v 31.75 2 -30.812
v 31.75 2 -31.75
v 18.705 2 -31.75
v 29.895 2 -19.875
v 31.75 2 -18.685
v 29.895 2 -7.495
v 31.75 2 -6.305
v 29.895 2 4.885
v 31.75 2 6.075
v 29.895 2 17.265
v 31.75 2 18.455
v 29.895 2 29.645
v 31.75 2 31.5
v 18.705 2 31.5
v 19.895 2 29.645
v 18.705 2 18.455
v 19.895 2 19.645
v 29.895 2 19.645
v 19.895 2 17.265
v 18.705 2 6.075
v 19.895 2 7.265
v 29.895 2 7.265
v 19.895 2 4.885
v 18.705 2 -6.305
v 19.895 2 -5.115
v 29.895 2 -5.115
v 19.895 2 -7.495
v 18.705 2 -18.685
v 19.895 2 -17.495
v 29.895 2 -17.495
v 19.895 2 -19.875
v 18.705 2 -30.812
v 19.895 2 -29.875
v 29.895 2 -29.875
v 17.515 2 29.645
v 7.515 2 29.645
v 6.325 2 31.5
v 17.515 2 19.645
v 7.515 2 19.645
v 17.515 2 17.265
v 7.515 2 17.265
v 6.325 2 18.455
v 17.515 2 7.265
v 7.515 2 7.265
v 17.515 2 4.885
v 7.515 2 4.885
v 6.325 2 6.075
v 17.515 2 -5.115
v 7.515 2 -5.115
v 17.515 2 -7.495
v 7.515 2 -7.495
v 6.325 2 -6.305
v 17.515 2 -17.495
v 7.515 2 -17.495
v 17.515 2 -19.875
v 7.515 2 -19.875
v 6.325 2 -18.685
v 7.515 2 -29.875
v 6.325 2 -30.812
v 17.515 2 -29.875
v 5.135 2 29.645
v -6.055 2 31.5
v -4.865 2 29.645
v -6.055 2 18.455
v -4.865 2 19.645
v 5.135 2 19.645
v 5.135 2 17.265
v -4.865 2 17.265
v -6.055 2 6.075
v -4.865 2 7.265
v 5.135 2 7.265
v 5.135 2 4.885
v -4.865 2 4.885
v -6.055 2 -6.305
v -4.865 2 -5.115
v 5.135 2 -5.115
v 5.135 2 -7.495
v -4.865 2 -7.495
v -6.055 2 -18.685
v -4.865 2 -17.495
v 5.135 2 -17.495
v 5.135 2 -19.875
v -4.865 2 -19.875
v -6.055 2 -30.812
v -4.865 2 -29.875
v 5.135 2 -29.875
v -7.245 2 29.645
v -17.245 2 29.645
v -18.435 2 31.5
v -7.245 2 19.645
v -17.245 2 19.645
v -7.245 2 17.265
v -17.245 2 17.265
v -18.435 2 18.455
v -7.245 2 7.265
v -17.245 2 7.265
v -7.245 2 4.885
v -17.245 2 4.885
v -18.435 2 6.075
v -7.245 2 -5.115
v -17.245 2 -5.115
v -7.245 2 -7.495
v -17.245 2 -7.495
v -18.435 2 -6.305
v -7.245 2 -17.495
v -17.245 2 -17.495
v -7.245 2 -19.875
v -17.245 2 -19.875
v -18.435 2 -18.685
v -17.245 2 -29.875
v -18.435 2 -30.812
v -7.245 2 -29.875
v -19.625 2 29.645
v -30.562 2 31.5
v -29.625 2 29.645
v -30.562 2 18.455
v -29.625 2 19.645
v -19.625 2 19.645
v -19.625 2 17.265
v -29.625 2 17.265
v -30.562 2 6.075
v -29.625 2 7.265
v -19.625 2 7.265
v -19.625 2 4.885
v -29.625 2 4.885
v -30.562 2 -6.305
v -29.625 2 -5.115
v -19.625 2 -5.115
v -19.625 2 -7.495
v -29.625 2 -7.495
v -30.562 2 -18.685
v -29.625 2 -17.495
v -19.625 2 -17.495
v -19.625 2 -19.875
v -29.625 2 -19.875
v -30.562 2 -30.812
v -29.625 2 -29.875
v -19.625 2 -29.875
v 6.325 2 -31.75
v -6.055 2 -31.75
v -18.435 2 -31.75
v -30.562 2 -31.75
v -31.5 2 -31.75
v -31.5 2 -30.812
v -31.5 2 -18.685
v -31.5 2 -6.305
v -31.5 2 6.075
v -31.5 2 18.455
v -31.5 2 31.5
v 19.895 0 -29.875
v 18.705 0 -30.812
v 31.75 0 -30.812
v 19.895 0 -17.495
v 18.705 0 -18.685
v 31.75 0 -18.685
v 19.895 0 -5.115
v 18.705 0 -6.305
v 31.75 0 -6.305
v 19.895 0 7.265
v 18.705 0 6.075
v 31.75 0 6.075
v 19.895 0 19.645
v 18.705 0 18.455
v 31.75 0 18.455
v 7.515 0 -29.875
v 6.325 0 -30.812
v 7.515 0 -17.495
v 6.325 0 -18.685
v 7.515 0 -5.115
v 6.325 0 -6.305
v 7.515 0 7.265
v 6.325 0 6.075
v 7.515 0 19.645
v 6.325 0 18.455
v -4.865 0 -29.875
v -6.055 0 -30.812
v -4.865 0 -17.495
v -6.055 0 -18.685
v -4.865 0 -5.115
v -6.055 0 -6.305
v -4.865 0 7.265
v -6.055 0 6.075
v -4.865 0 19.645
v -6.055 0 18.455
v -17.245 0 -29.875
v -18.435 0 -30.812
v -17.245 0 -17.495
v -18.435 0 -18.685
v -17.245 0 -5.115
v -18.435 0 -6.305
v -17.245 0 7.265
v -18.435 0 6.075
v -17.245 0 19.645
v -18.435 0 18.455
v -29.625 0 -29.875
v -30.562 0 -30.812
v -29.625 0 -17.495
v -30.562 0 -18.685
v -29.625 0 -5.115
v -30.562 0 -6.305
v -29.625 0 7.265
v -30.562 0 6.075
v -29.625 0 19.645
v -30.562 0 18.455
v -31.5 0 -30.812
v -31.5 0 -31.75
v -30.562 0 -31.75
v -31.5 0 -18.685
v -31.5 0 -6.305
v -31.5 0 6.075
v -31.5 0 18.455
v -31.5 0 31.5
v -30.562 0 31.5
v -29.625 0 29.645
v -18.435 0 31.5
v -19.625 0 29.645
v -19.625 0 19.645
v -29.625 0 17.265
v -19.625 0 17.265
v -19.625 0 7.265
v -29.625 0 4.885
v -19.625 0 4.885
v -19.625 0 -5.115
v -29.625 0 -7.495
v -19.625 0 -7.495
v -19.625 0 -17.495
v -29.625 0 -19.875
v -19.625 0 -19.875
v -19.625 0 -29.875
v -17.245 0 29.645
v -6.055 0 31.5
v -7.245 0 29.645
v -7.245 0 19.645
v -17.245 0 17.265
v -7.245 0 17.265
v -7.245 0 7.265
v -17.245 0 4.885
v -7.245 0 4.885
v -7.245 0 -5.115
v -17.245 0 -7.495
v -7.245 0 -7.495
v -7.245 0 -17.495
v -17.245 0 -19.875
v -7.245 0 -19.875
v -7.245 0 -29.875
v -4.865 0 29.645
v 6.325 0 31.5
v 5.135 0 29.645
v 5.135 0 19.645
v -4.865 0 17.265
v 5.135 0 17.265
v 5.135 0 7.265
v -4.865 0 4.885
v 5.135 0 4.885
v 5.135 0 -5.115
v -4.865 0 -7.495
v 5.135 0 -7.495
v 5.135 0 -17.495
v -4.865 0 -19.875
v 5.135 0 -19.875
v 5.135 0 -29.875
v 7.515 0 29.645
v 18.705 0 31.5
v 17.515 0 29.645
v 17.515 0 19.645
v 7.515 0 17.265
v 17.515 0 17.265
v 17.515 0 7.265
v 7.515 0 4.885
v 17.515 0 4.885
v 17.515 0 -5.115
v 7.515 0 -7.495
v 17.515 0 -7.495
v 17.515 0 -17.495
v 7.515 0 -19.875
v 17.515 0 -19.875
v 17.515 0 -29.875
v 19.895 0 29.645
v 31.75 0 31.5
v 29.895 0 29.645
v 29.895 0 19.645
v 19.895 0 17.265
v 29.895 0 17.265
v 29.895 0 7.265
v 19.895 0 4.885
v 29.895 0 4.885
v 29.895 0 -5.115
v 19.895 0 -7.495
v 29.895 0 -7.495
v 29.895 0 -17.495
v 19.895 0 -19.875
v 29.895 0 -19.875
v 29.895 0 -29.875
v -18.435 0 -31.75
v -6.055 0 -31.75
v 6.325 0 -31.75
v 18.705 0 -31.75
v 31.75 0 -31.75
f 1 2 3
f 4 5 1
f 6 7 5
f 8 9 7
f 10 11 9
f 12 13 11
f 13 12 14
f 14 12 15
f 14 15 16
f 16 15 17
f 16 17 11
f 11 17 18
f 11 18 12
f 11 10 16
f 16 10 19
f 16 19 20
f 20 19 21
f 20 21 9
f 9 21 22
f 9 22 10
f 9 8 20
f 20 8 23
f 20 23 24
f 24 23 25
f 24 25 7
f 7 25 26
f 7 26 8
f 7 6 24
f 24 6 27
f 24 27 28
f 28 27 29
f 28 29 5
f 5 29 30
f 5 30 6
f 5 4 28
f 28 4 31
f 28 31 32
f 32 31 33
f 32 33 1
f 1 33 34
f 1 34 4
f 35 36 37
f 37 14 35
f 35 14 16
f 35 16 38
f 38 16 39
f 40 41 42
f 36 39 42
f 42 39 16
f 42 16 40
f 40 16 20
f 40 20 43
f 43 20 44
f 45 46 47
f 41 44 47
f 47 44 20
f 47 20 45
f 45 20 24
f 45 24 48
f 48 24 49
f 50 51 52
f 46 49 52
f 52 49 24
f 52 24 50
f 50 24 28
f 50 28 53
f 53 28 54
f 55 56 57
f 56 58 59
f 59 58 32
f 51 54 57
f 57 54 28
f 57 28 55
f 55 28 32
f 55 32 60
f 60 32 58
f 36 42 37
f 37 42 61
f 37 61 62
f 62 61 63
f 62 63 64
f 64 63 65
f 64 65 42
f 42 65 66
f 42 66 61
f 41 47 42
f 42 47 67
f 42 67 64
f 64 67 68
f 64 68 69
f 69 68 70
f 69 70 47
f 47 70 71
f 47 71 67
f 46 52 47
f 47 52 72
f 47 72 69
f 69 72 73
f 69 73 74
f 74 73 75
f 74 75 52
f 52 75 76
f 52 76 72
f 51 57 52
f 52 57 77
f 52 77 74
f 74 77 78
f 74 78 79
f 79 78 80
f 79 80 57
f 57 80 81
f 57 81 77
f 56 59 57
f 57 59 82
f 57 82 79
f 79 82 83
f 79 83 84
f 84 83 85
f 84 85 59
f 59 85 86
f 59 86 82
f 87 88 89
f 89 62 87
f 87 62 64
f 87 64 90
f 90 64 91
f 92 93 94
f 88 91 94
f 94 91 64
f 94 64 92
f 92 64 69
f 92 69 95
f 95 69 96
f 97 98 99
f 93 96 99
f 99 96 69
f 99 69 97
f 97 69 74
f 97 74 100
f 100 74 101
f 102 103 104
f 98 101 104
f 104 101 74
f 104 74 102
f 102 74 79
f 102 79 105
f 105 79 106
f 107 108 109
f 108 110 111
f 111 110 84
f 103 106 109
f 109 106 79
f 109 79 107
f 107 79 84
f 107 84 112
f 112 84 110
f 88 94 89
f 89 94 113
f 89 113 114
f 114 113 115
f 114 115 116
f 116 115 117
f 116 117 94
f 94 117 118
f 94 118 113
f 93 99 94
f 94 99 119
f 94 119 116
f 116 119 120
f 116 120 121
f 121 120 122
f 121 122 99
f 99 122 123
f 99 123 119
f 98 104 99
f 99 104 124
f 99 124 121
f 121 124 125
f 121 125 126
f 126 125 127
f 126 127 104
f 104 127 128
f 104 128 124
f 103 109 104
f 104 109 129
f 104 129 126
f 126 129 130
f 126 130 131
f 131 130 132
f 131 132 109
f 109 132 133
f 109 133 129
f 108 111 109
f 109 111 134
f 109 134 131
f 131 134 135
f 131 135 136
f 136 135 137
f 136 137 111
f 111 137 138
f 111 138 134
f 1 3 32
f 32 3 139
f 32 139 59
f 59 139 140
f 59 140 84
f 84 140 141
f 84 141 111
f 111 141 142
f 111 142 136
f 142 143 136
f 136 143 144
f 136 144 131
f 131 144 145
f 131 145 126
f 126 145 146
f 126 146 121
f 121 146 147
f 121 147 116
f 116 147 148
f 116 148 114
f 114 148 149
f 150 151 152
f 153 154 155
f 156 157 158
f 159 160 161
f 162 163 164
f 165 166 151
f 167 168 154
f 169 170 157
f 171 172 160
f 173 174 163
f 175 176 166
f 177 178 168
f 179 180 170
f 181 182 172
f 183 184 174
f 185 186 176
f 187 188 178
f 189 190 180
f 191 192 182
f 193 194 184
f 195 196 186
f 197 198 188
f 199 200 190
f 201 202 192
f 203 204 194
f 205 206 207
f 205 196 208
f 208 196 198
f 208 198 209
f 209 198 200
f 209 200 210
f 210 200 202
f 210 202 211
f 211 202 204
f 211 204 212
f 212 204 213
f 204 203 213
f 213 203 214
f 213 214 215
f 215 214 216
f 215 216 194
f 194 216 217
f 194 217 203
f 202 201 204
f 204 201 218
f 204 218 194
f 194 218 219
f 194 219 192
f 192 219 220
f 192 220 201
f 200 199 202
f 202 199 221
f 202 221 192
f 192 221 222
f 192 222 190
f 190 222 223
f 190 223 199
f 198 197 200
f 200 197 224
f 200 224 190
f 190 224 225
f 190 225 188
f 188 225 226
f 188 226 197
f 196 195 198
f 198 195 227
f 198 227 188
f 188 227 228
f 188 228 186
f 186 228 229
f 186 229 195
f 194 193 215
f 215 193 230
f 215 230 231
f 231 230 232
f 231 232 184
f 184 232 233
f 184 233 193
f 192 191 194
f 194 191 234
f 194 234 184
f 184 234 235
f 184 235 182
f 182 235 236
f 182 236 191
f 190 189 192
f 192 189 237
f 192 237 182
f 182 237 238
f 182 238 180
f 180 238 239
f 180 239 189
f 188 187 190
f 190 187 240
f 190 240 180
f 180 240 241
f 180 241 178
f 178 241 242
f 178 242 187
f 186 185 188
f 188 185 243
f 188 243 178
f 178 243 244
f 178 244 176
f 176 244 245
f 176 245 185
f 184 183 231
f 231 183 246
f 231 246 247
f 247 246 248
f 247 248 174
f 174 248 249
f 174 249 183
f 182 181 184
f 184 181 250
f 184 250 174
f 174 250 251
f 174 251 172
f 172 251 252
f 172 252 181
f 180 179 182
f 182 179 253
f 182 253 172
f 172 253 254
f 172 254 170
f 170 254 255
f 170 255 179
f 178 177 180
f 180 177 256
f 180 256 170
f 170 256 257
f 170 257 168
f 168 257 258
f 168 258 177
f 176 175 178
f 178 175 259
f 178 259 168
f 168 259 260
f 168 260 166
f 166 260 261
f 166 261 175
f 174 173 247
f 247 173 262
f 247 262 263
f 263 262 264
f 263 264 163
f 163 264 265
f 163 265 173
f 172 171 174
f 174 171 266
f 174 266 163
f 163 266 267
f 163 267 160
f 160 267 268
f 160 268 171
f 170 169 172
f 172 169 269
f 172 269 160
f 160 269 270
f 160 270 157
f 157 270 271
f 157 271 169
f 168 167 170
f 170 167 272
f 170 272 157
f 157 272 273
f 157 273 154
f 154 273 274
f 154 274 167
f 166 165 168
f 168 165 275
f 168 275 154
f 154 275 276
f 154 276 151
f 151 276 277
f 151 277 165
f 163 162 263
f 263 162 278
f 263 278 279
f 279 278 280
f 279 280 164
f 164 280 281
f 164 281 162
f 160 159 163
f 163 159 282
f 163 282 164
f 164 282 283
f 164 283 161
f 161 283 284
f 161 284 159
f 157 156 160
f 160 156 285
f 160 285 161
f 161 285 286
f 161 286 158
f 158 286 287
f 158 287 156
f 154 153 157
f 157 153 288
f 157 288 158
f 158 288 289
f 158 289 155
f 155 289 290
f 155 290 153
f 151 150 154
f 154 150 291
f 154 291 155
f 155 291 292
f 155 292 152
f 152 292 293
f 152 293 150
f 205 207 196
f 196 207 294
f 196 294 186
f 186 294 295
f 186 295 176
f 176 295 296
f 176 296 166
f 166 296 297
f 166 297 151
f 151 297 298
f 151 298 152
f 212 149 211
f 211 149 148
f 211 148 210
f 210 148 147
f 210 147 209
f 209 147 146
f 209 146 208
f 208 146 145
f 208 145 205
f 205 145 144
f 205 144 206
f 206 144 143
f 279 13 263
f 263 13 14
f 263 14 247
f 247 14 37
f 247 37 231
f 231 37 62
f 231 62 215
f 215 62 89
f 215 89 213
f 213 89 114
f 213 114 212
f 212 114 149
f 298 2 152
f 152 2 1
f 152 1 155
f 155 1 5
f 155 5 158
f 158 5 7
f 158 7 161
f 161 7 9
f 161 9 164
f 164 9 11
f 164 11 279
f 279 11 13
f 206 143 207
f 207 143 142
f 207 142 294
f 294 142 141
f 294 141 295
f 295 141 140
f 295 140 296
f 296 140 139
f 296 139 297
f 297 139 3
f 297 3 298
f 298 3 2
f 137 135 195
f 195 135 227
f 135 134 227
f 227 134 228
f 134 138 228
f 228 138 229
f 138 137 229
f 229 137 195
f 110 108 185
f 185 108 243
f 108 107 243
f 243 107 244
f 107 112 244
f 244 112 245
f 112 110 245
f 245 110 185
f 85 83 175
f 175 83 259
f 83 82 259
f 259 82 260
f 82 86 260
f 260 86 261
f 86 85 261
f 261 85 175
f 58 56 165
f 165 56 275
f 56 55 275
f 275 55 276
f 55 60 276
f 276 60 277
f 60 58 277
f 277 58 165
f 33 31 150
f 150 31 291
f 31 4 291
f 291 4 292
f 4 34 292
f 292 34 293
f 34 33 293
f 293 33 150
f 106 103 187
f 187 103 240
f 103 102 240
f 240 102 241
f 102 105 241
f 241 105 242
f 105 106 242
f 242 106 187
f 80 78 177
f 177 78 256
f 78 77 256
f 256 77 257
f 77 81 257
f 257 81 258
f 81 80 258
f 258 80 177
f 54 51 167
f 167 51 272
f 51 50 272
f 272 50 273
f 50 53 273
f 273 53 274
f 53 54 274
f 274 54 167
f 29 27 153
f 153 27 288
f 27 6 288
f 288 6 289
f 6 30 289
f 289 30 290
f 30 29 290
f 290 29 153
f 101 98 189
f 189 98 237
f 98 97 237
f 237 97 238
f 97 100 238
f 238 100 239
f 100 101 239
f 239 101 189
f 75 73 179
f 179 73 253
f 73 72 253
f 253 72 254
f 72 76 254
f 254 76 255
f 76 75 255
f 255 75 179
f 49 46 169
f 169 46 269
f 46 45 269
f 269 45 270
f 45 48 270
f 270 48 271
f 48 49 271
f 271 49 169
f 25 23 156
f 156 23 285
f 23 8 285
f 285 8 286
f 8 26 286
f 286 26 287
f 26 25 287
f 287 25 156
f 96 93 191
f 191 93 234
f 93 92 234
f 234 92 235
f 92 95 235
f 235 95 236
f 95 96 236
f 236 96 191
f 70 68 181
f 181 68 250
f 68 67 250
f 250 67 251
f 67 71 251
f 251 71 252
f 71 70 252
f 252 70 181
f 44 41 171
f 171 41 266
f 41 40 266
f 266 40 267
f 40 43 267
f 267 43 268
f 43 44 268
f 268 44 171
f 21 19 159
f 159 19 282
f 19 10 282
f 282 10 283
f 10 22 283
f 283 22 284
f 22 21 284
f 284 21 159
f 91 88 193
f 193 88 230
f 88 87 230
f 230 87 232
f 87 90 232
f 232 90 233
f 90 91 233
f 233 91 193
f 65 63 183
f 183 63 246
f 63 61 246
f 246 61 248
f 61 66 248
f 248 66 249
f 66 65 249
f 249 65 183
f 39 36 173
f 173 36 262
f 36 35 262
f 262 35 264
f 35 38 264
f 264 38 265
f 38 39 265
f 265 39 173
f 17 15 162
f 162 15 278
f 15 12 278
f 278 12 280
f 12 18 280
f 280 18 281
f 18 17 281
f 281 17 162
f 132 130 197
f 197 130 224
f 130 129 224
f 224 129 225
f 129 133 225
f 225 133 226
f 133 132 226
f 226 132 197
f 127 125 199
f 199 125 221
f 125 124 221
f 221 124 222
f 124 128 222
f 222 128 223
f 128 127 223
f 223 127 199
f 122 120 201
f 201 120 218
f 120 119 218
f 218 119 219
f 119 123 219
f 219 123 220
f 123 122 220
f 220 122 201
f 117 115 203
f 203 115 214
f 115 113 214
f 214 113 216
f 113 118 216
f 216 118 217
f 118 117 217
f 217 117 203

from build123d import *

# Parameters (mm, degrees)
SKETCH3_W           = 63.25
SKETCH3_H           = 63.25
SKETCH3_W_2         = 10
SKETCH3_H_2         = 10
BOSS_EXTRUDE3_DEPTH = 2


with BuildPart() as part:
    # Sketch3 → Boss-Extrude3 (new body)
    with BuildSketch(Plane(origin=(0, 0, 0), x_dir=(1, 0, 0), z_dir=(0, 1, 0))):
        with Locations((0.125, 0.125)):
            Rectangle(SKETCH3_W, SKETCH3_H)
        with Locations((-12.245, 24.875)):
            Rectangle(SKETCH3_W_2, SKETCH3_H_2, mode=Mode.SUBTRACT)
        with Locations((-24.625, 24.875)):
            Rectangle(SKETCH3_W_2, SKETCH3_H_2, mode=Mode.SUBTRACT)
        with Locations((0.135, 24.875)):
            Rectangle(SKETCH3_W_2, SKETCH3_H_2, mode=Mode.SUBTRACT)
        with Locations((12.515, 24.875)):
            Rectangle(SKETCH3_W_2, SKETCH3_H_2, mode=Mode.SUBTRACT)
        with Locations((24.895, 24.875)):
            Rectangle(SKETCH3_W_2, SKETCH3_H_2, mode=Mode.SUBTRACT)
        with Locations((-12.245, 12.495)):
            Rectangle(SKETCH3_W_2, SKETCH3_H_2, mode=Mode.SUBTRACT)
        with Locations((0.135, 12.495)):
            Rectangle(SKETCH3_W_2, SKETCH3_H_2, mode=Mode.SUBTRACT)
        with Locations((12.515, 12.495)):
            Rectangle(SKETCH3_W_2, SKETCH3_H_2, mode=Mode.SUBTRACT)
        with Locations((24.895, 12.495)):
            Rectangle(SKETCH3_W_2, SKETCH3_H_2, mode=Mode.SUBTRACT)
        with Locations((-12.245, 0.115)):
            Rectangle(SKETCH3_W_2, SKETCH3_H_2, mode=Mode.SUBTRACT)
        with Locations((0.135, 0.115)):
            Rectangle(SKETCH3_W_2, SKETCH3_H_2, mode=Mode.SUBTRACT)
        with Locations((12.515, 0.115)):
            Rectangle(SKETCH3_W_2, SKETCH3_H_2, mode=Mode.SUBTRACT)
        with Locations((24.895, 0.115)):
            Rectangle(SKETCH3_W_2, SKETCH3_H_2, mode=Mode.SUBTRACT)
        with Locations((-12.245, -12.265)):
            Rectangle(SKETCH3_W_2, SKETCH3_H_2, mode=Mode.SUBTRACT)
        with Locations((0.135, -12.265)):
            Rectangle(SKETCH3_W_2, SKETCH3_H_2, mode=Mode.SUBTRACT)
        with Locations((12.515, -12.265)):
            Rectangle(SKETCH3_W_2, SKETCH3_H_2, mode=Mode.SUBTRACT)
        with Locations((24.895, -12.265)):
            Rectangle(SKETCH3_W_2, SKETCH3_H_2, mode=Mode.SUBTRACT)
        with Locations((-12.245, -24.645)):
            Rectangle(SKETCH3_W_2, SKETCH3_H_2, mode=Mode.SUBTRACT)
        with Locations((0.135, -24.645)):
            Rectangle(SKETCH3_W_2, SKETCH3_H_2, mode=Mode.SUBTRACT)
        with Locations((12.515, -24.645)):
            Rectangle(SKETCH3_W_2, SKETCH3_H_2, mode=Mode.SUBTRACT)
        with Locations((24.895, -24.645)):
            Rectangle(SKETCH3_W_2, SKETCH3_H_2, mode=Mode.SUBTRACT)
        with Locations((-24.625, 12.495)):
            Rectangle(SKETCH3_W_2, SKETCH3_H_2, mode=Mode.SUBTRACT)
        with Locations((-24.625, 0.115)):
            Rectangle(SKETCH3_W_2, SKETCH3_H_2, mode=Mode.SUBTRACT)
        with Locations((-24.625, -12.265)):
            Rectangle(SKETCH3_W_2, SKETCH3_H_2, mode=Mode.SUBTRACT)
        with Locations((-24.625, -24.645)):
            Rectangle(SKETCH3_W_2, SKETCH3_H_2, mode=Mode.SUBTRACT)
    extrude(amount=BOSS_EXTRUDE3_DEPTH)


solid = part.part
